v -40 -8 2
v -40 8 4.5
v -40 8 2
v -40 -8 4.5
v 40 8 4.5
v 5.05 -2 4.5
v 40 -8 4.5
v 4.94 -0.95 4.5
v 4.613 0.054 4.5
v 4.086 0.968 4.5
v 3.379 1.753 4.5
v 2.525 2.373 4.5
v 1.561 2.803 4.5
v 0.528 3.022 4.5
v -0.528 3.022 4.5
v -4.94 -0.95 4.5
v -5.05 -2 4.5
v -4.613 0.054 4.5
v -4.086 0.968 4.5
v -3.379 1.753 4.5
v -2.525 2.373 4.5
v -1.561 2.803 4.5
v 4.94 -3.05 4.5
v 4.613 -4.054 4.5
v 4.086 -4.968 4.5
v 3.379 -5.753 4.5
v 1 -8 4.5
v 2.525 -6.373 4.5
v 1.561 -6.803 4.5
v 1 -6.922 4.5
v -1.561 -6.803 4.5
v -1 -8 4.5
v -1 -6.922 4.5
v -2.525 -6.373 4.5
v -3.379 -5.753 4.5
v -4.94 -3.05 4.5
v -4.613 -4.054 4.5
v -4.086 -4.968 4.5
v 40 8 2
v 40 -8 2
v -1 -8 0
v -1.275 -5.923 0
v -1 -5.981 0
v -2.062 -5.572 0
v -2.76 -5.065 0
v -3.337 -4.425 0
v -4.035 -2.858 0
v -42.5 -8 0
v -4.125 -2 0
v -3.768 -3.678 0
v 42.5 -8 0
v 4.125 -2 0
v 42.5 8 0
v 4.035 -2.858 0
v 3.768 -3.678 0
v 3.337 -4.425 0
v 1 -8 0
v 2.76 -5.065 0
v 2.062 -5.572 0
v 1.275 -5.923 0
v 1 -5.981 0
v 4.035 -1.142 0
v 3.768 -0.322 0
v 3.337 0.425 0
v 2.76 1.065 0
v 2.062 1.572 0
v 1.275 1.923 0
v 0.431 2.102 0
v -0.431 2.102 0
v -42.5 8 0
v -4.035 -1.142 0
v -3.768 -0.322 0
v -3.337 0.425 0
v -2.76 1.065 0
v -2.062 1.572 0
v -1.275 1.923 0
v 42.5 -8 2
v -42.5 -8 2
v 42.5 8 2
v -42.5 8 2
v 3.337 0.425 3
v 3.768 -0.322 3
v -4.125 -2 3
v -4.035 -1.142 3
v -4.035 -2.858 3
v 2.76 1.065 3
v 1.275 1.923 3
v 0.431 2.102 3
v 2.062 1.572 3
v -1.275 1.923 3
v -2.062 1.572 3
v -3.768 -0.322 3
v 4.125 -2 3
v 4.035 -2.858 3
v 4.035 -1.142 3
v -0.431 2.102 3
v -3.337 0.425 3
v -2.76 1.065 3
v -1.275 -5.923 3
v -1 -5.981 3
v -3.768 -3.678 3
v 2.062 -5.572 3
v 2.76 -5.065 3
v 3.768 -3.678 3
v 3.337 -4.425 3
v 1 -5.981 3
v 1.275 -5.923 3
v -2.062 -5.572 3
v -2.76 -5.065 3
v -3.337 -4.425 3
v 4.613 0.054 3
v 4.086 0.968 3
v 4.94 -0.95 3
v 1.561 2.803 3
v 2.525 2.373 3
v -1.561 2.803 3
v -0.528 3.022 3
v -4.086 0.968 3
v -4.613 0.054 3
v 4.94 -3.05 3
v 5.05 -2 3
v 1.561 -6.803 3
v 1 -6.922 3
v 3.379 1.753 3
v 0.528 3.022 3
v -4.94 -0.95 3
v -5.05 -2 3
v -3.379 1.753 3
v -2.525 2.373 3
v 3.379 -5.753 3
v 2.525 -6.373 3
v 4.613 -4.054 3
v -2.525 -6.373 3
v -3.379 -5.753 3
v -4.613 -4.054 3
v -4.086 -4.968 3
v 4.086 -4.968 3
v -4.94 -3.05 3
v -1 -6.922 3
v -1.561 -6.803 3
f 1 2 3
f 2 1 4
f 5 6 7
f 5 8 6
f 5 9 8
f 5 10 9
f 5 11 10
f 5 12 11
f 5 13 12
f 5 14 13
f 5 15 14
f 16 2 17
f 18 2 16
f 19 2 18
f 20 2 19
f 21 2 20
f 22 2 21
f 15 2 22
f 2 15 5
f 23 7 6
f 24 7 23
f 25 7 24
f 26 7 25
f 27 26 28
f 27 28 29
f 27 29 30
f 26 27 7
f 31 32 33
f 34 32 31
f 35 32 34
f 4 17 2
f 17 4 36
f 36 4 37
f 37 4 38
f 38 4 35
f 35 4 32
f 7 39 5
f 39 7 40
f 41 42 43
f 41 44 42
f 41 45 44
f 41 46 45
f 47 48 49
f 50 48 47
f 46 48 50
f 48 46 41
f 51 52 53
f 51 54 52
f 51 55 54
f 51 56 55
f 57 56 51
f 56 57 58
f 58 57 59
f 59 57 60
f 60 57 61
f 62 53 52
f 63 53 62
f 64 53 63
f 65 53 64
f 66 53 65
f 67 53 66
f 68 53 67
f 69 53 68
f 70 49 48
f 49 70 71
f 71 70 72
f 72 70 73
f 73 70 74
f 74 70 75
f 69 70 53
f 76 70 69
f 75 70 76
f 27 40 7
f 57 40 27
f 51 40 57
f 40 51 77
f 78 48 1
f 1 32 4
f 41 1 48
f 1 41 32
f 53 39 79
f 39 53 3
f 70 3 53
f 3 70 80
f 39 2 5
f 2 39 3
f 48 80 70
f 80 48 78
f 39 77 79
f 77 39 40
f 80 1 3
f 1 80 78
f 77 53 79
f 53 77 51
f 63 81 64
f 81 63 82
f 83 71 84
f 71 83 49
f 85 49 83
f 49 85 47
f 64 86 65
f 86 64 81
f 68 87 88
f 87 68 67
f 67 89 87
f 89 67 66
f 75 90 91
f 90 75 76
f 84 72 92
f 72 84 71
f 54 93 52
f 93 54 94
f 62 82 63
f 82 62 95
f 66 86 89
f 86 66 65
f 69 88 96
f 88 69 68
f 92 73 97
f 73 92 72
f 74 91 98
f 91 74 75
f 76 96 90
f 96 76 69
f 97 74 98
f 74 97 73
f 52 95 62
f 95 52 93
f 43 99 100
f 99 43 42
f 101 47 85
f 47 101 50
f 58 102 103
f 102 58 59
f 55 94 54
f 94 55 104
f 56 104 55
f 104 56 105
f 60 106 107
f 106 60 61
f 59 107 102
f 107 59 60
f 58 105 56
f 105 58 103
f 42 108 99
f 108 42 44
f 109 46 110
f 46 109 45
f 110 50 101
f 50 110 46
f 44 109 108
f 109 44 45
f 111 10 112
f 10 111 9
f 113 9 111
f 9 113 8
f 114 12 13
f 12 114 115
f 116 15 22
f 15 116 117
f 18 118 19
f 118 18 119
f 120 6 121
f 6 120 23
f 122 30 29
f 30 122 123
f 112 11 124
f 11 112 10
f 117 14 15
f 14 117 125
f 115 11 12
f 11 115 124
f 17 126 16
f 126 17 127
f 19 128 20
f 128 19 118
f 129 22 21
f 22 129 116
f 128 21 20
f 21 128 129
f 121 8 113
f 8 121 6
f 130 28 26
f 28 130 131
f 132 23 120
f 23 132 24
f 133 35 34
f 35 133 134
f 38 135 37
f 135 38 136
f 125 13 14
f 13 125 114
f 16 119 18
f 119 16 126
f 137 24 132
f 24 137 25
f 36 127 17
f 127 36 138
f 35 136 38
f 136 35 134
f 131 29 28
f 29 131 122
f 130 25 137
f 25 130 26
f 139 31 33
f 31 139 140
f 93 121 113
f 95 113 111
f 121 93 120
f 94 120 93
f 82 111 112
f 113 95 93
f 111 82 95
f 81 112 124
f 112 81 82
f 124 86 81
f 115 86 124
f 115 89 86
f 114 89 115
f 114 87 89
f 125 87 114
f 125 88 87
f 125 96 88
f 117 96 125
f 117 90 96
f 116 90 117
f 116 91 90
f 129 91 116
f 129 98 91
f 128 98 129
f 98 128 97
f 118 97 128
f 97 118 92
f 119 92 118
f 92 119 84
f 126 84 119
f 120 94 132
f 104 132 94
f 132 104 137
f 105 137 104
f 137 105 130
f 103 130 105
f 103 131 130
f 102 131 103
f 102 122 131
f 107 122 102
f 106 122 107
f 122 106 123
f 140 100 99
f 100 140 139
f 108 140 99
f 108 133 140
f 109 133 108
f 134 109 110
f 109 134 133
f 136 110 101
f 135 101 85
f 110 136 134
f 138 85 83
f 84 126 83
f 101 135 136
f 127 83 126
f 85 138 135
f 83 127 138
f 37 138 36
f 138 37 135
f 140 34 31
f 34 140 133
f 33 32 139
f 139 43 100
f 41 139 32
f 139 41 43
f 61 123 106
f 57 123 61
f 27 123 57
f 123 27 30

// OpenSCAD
include <BOSL/constants.scad>
use <BOSL/shapes.scad>
use <BOSL/transforms.scad>
use <BOSL/masks.scad>

toolWidth=80;
toolDepth=16;
toolHeight=4.5;

tool();

module tool() {  
  difference(){
    union() {
      color("orange") cuboid([toolWidth, toolDepth, toolHeight], align=V_UP); //base jig
      color("orange") cuboid([toolWidth+5, toolDepth, 2], align=V_UP); //to fit into vise 
    }
    forward(2) color("green") cyl(d=8.25, h=toolHeight, align=V_UP, $fn=30); // TRRS
    forward(2) up(toolHeight-1.5) color("blue") cyl(d=10.1, h=1.5, align=V_UP, $fn=30); // TRRS lip
    forward((toolDepth/2)-(5/2)+2) color("purple") cuboid([2,5,toolHeight], align=V_UP);
    
  }//difference
}
